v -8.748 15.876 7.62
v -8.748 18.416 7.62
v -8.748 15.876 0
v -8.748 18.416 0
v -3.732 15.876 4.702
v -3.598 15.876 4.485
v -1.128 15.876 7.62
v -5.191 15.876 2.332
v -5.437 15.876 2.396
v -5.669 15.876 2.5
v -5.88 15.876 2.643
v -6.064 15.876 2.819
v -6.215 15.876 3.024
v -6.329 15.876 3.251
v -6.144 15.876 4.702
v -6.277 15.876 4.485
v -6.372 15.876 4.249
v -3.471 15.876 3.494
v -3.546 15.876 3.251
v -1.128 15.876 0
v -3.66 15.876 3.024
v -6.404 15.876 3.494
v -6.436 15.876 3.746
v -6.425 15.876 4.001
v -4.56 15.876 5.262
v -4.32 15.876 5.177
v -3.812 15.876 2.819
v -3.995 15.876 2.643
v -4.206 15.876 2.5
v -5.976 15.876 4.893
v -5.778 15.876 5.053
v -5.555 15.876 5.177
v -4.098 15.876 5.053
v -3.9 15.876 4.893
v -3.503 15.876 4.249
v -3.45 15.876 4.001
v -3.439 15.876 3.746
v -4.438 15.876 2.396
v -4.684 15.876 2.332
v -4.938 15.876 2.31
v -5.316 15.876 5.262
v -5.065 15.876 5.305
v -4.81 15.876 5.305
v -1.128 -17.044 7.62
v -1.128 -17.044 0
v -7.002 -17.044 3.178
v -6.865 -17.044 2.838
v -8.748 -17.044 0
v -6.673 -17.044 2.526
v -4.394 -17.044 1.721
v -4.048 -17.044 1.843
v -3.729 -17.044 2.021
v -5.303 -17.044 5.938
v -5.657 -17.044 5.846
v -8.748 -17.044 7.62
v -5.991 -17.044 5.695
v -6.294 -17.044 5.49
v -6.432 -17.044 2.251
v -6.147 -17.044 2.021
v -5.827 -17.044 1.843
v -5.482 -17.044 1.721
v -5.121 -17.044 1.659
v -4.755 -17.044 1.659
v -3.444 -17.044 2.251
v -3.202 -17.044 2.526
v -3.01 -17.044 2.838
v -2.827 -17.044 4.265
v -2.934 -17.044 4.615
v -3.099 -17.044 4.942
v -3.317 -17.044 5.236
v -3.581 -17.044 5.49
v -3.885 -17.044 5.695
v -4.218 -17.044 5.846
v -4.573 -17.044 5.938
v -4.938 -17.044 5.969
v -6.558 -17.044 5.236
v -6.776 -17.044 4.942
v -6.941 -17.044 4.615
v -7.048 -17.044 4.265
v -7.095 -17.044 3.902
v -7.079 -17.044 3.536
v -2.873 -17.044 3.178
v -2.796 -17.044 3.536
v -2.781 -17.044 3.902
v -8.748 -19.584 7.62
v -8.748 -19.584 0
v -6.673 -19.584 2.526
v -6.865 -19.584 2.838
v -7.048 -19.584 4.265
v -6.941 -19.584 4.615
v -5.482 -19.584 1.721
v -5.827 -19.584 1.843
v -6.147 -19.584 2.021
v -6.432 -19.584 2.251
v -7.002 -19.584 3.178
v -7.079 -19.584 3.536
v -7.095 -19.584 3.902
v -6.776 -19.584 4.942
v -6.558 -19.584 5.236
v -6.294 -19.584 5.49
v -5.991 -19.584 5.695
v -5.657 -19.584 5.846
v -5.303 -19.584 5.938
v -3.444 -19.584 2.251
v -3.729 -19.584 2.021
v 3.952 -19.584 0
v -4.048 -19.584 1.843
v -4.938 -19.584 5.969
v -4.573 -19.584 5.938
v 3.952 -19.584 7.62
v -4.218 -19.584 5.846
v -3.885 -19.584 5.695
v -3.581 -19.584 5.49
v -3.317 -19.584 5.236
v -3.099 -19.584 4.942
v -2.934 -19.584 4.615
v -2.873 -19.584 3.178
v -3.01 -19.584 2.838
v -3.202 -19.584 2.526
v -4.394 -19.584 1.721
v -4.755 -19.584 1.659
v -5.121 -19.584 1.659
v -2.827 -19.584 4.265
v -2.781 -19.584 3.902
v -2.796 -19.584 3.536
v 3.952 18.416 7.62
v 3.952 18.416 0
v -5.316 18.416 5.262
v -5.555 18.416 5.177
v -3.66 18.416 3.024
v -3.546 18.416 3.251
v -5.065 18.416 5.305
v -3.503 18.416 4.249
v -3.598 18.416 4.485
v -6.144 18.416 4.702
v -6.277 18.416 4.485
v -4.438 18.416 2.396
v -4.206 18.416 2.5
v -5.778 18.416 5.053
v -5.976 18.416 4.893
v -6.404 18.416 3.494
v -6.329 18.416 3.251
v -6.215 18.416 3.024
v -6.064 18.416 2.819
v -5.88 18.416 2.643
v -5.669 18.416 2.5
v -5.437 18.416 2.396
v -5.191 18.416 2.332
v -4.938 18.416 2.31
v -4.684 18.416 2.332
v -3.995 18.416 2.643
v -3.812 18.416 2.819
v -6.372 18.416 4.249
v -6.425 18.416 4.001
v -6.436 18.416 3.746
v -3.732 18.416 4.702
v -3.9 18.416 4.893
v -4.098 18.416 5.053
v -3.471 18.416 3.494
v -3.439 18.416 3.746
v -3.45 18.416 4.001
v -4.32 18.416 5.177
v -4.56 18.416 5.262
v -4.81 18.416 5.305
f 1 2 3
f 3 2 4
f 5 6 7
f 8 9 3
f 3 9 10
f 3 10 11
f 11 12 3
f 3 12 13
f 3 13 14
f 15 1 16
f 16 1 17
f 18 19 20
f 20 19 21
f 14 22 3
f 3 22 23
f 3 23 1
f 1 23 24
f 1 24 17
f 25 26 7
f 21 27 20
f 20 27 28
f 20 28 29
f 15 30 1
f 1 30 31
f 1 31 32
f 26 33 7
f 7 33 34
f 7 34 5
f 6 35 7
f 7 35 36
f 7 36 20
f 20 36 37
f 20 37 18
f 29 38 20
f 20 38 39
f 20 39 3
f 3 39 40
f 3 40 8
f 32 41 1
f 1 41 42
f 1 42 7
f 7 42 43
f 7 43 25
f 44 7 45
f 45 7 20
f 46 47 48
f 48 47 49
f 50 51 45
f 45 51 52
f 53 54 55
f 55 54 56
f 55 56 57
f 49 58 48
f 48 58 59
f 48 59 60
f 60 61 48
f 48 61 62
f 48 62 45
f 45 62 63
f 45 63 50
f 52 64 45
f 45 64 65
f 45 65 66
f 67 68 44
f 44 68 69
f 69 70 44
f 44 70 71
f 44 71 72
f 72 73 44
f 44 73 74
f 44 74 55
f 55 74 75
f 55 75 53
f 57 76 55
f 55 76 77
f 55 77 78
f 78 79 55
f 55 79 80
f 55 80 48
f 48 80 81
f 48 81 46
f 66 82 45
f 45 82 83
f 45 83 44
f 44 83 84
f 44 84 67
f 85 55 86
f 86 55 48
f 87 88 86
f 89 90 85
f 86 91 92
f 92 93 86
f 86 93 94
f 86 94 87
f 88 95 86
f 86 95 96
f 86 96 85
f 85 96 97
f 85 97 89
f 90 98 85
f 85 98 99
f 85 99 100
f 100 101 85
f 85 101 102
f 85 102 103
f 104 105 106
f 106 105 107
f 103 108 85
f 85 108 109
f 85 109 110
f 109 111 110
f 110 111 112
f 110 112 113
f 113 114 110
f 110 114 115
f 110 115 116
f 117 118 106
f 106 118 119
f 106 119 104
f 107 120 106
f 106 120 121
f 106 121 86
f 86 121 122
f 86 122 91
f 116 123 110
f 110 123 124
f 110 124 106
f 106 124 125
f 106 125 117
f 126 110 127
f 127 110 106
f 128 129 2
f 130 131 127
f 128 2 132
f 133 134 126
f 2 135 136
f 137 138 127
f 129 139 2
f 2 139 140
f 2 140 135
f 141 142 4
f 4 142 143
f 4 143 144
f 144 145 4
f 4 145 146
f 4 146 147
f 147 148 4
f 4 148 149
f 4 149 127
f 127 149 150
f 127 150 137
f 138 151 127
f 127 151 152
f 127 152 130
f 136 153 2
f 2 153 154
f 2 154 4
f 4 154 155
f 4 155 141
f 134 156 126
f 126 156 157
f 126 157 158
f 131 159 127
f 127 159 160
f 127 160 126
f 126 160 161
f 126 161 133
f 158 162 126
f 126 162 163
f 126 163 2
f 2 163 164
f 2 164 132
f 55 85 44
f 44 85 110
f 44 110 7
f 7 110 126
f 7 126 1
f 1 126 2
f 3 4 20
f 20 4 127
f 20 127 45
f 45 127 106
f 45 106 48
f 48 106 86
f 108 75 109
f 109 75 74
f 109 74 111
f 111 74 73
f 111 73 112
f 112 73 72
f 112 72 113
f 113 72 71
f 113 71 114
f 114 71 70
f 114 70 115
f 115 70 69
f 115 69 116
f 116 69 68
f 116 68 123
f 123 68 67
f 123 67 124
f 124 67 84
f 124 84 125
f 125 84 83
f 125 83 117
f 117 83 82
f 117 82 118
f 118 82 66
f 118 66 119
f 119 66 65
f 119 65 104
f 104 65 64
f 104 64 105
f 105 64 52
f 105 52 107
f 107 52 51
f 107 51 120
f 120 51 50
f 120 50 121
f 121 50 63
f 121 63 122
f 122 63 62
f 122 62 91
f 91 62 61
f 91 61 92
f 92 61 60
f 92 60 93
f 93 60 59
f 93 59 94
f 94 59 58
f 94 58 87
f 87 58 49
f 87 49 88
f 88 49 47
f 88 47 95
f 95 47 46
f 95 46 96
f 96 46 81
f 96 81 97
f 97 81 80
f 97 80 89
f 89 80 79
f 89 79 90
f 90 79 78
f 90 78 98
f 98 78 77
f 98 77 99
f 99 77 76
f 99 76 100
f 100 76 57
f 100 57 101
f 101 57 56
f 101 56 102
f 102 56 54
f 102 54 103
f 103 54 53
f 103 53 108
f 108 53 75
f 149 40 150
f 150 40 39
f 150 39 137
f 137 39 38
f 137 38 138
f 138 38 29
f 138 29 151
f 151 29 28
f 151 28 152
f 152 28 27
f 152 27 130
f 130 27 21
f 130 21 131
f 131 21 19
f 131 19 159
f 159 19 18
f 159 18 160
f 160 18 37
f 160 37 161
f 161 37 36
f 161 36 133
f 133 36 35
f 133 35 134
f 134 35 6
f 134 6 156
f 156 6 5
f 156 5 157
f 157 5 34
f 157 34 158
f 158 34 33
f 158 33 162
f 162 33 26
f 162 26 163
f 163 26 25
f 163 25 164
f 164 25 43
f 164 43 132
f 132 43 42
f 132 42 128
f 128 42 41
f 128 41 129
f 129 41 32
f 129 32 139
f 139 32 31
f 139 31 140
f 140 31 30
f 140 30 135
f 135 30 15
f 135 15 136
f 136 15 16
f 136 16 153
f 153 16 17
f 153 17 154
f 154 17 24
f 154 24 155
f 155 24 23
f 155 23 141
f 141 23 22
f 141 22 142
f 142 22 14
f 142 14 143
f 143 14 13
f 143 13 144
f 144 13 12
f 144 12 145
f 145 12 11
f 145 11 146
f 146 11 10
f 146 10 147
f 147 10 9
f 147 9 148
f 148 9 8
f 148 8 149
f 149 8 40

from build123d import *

# Parameters (mm, degrees)
BOSS_EXTRUDE1_DEPTH = 7.62
SKETCH2_R           = 2.159
CUT_EXTRUDE1_DEPTH  = 38.309477646
SKETCH3_R           = 1.5
CUT_EXTRUDE2_DEPTH  = 38.309477646


with BuildPart() as part:
    # Sketch1 → Boss-Extrude1 (new body)
    with BuildSketch(Plane.XY):
        Polygon((-8.747635235, -17.04359987), (-8.747635235, -19.58359987), (3.952364765, -19.58359987), (3.952364765, 18.41640013), (-8.747635235, 18.41640013), (-8.747635235, 15.87640013), (-1.127635235, 15.87640013), (-1.127635235, -17.04359987), align=None)
    extrude(amount=BOSS_EXTRUDE1_DEPTH)

    # Sketch2 → Cut-Extrude1 (cut, through all)
    with BuildSketch(Plane(origin=(0, -17.04359987, 0), x_dir=(1, 0, 0), z_dir=(0, 1, 0))):
        with Locations(Location((-4.937635235, -3.81, 0), (0, 0, 270))):
            Circle(SKETCH2_R)
    extrude(amount=-CUT_EXTRUDE1_DEPTH, mode=Mode.SUBTRACT)

    # Sketch3 → Cut-Extrude2 (cut, through all)
    with BuildSketch(Plane.XZ.offset(-15.87640013)):
        with Locations(Location((-4.937635235, 3.81, 0), (0, 0, 270))):
            Circle(SKETCH3_R)
    extrude(amount=-CUT_EXTRUDE2_DEPTH, mode=Mode.SUBTRACT)


solid = part.part
